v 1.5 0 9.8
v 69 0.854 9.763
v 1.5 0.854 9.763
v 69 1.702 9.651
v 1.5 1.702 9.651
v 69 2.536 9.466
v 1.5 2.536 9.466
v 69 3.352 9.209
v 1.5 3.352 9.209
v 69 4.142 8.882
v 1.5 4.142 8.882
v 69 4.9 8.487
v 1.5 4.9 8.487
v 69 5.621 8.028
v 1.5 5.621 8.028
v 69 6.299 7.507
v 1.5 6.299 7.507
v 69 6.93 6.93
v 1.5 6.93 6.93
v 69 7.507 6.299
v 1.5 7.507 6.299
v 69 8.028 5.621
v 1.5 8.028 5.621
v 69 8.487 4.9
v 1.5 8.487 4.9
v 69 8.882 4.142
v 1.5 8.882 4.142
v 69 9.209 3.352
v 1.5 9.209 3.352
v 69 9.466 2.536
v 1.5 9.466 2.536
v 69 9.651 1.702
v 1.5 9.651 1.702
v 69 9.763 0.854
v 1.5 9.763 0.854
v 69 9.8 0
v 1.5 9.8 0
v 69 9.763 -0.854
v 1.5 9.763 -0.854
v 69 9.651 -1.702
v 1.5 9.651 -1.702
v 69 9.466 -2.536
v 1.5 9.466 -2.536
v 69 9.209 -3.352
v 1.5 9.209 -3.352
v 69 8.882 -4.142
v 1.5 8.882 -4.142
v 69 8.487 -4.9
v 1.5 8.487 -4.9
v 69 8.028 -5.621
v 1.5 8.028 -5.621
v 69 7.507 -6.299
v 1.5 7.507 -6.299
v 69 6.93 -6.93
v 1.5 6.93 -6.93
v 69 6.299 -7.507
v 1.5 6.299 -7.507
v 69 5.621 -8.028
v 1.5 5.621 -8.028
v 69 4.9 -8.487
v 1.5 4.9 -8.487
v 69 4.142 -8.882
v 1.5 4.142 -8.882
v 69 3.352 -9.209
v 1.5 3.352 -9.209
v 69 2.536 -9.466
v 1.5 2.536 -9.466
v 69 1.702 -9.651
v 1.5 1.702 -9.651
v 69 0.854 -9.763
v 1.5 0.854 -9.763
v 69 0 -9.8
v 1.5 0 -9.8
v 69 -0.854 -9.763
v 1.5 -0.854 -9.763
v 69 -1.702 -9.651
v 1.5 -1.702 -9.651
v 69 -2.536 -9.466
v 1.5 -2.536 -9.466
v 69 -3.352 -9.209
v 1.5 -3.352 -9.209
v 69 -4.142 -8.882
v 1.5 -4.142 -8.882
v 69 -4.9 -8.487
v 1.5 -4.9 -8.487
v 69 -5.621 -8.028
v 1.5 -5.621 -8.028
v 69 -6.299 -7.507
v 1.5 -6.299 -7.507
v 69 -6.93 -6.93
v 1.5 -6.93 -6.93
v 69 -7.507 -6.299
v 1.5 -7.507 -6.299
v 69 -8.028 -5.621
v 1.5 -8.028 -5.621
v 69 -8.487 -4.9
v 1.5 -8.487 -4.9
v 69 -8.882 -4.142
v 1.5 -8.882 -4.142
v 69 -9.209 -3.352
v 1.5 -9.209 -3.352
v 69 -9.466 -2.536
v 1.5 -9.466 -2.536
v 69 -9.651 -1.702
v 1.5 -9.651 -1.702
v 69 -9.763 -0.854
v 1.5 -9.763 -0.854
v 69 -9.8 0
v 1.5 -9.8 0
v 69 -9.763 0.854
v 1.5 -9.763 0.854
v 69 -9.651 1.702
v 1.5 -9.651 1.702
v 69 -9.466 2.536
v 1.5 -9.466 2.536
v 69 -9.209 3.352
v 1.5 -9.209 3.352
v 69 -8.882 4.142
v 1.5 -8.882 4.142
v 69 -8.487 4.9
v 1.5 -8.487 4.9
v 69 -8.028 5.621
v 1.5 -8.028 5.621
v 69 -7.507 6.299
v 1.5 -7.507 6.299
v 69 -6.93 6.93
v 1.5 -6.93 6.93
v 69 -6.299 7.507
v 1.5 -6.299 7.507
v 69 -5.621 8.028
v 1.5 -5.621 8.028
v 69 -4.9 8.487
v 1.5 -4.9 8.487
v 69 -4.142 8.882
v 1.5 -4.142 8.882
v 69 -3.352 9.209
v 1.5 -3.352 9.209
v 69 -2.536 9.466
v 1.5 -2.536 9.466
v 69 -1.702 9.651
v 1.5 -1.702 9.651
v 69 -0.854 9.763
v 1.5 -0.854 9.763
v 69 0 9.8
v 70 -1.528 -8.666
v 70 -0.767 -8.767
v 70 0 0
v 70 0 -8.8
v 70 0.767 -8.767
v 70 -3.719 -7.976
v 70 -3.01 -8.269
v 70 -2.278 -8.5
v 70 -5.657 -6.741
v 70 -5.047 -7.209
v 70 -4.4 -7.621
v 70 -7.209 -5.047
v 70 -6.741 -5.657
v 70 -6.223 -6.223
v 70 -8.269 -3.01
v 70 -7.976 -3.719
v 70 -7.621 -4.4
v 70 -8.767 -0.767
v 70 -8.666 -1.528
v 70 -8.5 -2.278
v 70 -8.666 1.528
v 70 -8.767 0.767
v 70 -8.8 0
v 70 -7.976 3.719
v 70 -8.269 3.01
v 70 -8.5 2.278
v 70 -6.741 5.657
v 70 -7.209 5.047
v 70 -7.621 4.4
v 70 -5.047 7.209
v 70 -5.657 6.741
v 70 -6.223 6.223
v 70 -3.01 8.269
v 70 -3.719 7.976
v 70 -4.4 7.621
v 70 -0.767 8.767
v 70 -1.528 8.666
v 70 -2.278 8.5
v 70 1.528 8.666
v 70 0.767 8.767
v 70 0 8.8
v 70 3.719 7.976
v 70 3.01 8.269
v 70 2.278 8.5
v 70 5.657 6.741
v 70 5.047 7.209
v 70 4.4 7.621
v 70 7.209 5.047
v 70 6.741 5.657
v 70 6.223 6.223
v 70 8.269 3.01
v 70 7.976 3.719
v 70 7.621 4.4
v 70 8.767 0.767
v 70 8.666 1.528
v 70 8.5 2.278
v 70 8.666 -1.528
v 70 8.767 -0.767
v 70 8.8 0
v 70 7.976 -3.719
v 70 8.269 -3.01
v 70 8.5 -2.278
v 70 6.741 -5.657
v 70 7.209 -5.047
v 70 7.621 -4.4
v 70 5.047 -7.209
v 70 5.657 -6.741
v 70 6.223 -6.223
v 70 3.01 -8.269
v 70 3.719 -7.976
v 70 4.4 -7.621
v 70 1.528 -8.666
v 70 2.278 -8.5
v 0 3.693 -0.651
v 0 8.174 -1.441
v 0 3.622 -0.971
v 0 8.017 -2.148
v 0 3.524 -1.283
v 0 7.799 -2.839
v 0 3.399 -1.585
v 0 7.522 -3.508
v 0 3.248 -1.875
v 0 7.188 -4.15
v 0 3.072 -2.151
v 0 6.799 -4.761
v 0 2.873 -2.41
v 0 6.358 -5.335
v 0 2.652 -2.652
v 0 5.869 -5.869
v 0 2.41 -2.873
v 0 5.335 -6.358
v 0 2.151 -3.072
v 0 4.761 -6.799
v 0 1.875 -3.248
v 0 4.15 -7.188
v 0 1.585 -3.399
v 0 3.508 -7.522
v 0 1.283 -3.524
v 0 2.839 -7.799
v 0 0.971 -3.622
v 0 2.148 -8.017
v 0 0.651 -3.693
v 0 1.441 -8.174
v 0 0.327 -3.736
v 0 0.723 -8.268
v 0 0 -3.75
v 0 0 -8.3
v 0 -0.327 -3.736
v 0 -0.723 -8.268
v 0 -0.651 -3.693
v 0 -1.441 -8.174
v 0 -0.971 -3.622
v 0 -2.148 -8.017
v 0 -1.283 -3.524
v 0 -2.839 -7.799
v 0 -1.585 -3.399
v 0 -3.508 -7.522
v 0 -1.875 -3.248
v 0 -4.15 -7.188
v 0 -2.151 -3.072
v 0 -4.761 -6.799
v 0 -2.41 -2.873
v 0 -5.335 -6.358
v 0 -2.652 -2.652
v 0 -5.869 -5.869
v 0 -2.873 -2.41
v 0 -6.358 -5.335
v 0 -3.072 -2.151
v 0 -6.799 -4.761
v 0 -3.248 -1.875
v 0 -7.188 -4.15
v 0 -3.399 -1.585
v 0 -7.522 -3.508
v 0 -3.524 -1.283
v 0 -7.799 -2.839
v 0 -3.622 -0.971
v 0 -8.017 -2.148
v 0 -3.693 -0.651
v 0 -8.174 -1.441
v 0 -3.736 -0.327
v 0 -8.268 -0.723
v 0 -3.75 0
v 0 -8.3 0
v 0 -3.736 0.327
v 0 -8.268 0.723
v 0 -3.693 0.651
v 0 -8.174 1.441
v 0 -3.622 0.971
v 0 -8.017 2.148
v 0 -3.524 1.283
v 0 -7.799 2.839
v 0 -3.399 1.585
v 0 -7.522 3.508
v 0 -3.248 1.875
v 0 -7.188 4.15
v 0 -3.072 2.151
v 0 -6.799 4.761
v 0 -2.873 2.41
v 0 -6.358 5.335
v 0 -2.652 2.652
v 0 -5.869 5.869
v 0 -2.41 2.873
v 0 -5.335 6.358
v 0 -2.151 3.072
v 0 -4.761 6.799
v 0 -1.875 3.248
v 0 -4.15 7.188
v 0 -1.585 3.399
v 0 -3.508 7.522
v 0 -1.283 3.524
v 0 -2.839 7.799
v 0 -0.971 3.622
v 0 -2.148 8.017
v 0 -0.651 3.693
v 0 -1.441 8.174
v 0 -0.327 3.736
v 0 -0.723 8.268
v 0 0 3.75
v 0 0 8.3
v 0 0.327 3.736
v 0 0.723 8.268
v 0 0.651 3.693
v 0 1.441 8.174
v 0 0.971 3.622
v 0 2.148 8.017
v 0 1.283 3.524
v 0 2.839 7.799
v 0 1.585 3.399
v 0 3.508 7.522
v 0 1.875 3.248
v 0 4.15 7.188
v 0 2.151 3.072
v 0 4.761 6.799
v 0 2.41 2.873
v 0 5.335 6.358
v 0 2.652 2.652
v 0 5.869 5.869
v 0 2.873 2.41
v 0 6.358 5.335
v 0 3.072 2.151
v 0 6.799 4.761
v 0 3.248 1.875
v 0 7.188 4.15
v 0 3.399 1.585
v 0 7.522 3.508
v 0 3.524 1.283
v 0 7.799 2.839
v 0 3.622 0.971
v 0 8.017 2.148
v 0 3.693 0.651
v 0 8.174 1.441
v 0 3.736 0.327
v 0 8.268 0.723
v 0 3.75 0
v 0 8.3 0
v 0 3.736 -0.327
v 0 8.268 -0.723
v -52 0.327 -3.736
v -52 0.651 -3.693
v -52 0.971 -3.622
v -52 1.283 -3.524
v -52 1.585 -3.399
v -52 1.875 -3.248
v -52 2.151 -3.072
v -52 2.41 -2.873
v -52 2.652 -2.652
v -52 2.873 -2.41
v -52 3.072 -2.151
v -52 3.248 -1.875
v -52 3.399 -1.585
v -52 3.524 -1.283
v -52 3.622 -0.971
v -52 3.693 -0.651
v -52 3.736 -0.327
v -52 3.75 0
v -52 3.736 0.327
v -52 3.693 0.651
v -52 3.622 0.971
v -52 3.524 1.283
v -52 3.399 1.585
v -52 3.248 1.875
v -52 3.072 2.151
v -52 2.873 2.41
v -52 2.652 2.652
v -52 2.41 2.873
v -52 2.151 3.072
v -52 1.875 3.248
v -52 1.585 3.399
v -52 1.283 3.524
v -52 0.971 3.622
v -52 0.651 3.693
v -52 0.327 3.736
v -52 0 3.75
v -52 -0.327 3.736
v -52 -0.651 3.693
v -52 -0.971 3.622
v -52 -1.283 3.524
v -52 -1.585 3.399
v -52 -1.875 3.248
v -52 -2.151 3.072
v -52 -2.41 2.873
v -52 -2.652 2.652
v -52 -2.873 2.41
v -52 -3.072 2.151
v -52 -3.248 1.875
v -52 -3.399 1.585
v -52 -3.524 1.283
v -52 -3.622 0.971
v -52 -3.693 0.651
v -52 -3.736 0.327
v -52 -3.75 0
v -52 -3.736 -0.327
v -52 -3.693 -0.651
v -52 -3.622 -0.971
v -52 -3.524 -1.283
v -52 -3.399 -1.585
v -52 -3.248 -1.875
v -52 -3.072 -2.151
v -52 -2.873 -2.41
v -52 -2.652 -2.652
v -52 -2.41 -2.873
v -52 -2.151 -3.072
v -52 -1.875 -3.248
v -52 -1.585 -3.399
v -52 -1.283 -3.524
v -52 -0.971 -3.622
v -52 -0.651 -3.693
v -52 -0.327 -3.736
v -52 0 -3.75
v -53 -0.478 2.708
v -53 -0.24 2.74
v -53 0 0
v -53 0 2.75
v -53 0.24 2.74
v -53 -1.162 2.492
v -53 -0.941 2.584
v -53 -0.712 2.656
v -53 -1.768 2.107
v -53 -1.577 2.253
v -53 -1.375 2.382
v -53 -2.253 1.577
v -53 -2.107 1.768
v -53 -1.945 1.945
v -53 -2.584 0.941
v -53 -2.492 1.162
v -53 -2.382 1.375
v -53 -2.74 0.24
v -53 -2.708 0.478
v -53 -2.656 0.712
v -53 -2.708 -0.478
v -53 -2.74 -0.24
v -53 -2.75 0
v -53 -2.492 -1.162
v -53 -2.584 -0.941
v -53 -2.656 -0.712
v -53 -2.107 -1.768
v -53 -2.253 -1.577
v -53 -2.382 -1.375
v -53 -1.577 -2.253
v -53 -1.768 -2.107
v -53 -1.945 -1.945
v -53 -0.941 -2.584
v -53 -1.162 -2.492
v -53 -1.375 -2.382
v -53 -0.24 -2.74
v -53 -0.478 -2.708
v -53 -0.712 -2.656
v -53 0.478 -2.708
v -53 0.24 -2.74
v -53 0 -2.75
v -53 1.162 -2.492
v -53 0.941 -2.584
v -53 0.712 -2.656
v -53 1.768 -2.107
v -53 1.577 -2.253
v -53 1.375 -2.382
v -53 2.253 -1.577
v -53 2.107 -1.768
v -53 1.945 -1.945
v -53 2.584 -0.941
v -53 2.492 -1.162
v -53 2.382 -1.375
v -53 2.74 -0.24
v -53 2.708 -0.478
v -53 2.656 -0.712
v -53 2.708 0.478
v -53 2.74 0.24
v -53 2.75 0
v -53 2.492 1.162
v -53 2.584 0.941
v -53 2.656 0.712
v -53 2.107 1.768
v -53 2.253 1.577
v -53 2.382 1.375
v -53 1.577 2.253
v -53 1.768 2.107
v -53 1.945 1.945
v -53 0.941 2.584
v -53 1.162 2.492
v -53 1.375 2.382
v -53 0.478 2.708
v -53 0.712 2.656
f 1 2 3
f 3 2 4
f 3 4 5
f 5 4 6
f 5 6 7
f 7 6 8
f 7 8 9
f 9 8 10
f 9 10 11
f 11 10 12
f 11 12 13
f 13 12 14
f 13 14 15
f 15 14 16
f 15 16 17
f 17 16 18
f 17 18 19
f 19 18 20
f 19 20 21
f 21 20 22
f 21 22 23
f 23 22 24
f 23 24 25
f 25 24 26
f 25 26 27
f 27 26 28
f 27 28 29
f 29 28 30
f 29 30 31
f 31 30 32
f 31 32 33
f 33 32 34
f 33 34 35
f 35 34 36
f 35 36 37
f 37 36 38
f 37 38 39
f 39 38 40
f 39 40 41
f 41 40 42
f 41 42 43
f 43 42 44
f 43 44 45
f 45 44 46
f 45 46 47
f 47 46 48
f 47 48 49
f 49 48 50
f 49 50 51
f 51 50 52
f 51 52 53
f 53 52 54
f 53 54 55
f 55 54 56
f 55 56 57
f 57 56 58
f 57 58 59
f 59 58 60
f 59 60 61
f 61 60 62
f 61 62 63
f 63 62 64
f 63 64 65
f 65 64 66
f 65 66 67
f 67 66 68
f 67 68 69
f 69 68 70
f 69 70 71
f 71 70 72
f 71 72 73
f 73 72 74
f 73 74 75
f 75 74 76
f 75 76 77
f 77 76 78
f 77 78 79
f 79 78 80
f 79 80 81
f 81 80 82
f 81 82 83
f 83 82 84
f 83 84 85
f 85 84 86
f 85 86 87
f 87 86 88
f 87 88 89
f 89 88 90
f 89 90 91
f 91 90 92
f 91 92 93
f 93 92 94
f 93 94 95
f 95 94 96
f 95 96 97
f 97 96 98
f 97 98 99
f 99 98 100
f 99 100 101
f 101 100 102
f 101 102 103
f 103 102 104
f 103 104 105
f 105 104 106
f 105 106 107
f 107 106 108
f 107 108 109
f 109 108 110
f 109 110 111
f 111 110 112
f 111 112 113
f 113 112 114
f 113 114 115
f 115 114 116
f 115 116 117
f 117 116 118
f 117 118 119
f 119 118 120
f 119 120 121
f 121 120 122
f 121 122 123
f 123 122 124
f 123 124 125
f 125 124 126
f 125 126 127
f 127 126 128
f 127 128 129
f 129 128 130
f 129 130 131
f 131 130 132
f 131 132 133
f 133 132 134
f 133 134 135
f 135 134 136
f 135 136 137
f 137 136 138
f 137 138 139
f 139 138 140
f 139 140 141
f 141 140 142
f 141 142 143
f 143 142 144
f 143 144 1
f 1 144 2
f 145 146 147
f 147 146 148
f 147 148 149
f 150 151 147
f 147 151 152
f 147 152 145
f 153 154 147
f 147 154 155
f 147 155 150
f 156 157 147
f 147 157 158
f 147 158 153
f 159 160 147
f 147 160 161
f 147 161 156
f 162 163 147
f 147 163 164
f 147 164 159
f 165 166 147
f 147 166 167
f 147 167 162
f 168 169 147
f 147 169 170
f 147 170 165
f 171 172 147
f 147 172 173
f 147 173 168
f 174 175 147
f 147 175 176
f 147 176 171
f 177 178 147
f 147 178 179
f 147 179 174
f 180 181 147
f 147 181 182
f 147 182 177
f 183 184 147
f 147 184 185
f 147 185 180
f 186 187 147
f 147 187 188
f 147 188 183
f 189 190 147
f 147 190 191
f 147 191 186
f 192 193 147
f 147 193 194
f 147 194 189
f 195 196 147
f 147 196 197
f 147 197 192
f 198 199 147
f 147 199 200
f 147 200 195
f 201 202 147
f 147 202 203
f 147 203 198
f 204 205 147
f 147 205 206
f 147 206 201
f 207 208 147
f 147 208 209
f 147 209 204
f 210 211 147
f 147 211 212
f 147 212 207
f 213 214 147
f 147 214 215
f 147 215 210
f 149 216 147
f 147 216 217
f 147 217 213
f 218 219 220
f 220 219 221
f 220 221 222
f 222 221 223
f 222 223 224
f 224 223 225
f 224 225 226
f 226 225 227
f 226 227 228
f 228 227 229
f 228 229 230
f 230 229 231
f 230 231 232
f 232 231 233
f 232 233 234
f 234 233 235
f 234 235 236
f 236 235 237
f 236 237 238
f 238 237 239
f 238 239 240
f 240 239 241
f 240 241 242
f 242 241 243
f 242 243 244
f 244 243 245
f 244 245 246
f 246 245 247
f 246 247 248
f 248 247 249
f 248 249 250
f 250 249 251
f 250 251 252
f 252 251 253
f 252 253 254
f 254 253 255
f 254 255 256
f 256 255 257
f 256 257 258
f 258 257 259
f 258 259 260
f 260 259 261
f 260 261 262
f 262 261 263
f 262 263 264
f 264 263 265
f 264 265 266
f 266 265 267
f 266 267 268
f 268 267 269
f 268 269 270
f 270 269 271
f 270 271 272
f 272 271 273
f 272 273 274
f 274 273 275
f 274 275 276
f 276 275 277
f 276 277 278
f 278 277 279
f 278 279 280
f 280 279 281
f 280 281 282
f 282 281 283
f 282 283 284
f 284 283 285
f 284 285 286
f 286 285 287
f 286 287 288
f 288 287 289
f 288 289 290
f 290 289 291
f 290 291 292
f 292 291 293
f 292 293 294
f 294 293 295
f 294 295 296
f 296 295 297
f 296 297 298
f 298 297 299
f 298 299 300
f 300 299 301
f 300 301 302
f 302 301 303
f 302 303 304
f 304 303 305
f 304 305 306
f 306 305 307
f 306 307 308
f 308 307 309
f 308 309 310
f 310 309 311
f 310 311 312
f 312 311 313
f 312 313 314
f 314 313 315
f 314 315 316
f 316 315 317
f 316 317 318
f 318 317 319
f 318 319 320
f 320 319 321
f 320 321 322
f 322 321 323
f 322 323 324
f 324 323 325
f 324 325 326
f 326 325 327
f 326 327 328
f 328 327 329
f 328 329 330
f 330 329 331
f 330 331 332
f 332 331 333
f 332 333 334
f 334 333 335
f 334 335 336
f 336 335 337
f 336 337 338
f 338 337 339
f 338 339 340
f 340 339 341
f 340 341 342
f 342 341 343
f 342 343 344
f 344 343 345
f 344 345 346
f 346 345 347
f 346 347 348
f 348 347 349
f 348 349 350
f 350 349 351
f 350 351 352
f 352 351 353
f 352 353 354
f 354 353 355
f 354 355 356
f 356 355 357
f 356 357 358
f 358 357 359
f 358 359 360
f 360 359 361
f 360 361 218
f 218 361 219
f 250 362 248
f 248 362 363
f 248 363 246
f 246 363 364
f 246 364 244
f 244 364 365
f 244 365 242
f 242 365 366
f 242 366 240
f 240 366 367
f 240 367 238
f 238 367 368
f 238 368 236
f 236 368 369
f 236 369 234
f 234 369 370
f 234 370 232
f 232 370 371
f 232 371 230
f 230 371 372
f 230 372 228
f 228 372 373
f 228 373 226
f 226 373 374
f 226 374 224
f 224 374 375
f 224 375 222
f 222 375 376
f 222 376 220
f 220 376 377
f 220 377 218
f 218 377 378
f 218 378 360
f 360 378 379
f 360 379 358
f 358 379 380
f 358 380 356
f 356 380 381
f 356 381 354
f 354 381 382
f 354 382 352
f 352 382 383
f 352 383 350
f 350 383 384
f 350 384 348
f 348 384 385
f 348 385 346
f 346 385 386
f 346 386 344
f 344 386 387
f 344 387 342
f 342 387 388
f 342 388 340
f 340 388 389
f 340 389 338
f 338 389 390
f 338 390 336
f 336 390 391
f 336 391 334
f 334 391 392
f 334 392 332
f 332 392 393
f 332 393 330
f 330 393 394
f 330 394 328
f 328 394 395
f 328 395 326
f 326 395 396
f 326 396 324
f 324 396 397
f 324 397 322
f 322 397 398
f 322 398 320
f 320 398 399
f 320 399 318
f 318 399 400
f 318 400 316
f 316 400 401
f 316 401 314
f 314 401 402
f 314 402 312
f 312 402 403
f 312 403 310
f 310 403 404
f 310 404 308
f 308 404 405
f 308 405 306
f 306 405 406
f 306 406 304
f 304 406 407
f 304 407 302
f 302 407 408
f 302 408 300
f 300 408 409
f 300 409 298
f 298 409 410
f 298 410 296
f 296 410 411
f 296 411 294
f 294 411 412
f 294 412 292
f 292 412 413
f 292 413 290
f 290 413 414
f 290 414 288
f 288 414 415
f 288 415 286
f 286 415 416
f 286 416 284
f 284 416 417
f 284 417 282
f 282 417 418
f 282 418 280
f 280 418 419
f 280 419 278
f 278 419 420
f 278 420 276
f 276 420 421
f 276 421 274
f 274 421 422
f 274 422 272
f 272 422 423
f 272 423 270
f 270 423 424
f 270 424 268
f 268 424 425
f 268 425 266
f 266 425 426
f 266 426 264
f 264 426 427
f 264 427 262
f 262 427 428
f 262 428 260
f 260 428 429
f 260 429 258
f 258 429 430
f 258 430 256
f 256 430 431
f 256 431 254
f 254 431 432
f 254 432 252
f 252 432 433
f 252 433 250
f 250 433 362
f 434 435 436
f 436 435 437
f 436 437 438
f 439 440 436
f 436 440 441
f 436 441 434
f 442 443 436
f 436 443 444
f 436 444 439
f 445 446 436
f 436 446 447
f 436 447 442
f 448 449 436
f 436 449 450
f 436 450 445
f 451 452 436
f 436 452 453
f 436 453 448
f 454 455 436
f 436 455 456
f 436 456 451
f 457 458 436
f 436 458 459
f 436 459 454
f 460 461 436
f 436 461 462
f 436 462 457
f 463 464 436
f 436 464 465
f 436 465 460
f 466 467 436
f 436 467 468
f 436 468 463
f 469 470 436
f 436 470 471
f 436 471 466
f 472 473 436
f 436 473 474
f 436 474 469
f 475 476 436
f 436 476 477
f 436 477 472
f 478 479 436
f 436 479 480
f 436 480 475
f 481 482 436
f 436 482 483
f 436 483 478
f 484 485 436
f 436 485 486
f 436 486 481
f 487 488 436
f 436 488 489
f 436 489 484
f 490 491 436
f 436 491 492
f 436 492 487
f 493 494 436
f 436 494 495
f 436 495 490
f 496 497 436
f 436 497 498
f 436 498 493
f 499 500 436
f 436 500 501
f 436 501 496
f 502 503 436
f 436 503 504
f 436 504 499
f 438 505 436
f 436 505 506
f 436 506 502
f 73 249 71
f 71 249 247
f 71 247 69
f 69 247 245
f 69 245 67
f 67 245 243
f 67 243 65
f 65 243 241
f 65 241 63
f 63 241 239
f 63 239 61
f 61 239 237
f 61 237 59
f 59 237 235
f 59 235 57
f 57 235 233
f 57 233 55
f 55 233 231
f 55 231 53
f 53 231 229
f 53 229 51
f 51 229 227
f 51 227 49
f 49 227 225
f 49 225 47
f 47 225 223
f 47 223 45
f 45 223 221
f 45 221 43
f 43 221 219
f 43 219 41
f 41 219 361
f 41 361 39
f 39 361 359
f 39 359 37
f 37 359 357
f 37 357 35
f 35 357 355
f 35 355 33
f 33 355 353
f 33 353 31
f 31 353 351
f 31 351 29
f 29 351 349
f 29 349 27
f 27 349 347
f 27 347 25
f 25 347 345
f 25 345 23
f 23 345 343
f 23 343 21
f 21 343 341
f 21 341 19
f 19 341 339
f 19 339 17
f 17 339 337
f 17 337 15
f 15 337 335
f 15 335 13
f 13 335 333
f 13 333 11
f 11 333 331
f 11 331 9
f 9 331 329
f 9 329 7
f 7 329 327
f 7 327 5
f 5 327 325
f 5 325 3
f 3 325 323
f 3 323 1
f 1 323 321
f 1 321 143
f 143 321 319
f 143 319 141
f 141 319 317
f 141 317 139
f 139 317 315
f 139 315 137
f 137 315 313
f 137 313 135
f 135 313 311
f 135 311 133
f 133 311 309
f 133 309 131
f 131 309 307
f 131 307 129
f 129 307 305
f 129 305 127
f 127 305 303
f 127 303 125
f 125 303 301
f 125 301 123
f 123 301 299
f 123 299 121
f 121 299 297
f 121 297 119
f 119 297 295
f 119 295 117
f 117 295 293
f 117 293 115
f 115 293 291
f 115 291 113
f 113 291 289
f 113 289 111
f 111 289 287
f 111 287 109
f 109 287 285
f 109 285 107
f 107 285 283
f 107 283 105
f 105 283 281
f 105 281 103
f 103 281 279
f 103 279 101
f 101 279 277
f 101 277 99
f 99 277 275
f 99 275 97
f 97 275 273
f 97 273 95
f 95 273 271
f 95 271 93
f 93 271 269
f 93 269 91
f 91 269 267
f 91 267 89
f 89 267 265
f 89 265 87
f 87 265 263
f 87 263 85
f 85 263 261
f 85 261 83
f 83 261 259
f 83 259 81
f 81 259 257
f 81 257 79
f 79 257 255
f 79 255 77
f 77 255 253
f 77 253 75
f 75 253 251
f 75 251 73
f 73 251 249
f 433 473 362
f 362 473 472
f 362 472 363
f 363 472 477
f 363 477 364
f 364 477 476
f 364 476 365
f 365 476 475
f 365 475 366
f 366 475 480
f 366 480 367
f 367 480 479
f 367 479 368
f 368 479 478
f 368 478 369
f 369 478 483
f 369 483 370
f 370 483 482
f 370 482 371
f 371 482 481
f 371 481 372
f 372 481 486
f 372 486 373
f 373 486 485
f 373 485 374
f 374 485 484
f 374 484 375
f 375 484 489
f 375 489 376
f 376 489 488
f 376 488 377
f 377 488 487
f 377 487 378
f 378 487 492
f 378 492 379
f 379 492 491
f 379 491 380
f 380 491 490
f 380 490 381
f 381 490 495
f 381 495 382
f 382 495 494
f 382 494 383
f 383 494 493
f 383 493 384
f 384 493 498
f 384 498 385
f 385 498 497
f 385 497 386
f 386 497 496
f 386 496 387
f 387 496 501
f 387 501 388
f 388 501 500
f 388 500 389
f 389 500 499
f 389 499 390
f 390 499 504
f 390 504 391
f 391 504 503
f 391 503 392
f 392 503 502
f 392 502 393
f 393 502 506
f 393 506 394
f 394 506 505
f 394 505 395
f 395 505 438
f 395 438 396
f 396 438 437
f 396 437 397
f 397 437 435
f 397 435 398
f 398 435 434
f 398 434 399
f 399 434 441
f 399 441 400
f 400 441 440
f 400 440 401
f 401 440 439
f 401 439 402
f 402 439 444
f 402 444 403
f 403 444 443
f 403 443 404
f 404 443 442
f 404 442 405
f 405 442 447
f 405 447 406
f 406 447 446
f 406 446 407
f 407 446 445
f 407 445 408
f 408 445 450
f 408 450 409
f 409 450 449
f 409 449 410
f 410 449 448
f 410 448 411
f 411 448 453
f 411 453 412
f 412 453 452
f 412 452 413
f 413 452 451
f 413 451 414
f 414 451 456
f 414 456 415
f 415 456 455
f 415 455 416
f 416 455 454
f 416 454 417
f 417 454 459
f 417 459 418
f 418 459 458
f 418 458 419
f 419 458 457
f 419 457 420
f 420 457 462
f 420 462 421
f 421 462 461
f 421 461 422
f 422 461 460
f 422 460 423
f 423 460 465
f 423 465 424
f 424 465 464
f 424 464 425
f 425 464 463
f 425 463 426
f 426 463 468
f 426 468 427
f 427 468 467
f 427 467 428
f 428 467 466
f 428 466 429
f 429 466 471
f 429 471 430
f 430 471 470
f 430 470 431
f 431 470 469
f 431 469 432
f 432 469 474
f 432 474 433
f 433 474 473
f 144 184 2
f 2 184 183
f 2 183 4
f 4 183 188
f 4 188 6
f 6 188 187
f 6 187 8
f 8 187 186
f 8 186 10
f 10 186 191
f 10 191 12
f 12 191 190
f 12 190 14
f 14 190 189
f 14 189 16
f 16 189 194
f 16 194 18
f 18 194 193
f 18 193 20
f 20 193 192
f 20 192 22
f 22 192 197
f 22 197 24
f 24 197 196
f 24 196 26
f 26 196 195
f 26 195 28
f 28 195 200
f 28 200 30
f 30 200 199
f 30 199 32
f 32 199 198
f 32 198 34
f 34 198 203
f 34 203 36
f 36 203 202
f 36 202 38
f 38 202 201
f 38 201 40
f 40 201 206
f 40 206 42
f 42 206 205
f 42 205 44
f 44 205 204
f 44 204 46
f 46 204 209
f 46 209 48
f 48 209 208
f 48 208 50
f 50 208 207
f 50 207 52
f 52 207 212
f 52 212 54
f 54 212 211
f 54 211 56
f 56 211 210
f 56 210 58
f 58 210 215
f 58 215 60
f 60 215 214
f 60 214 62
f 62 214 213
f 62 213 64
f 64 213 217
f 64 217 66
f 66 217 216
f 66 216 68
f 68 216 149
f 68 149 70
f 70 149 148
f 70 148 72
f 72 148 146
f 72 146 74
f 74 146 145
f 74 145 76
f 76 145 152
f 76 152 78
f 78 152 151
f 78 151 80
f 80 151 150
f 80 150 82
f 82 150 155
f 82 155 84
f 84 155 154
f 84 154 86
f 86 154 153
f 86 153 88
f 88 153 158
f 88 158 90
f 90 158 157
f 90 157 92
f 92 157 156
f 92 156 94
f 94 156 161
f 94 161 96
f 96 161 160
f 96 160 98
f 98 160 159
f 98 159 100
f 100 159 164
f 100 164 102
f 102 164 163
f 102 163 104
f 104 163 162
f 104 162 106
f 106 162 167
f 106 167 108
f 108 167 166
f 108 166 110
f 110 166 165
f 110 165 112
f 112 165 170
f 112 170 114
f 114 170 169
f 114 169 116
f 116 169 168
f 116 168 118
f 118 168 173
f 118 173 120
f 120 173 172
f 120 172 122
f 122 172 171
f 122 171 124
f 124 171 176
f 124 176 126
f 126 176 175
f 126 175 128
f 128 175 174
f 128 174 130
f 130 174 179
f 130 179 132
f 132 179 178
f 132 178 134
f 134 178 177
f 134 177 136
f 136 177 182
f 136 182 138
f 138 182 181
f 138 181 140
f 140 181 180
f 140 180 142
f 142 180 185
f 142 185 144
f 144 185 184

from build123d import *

# Parameters (mm, degrees)
SKETCH_1_R      = 9.8
EXTRUDE_1_DEPTH = 70
SKETCH_2_R      = 3.75
EXTRUDE_2_DEPTH = 53
CHAMFER_1_SIZE  = 1.5
CHAMFER_2_SIZE  = 1
CHAMFER_3_SIZE  = 1


with BuildPart() as part:
    # 草图1 → 凸台-拉伸1 (new body)
    with BuildSketch(Plane(origin=(0, 0, 0), x_dir=(0, 0, -1), z_dir=(1, 0, 0))):
        Circle(SKETCH_1_R)
    extrude(amount=EXTRUDE_1_DEPTH)

    # 草图2 → 凸台-拉伸2 (add)
    with BuildSketch(Plane.ZY):
        Circle(SKETCH_2_R)
    extrude(amount=EXTRUDE_2_DEPTH)

    # 倒角1
    chamfer_1_edges = [part.edges().sort_by_distance(p)[0] for p in [
        (0, 0, 9.8),
    ]]
    chamfer(chamfer_1_edges, length=CHAMFER_1_SIZE)

    # 倒角2
    chamfer_2_edges = [part.edges().sort_by_distance(p)[0] for p in [
        (-53, 0, -3.75),
    ]]
    chamfer(chamfer_2_edges, length=CHAMFER_2_SIZE)

    # 倒角3
    chamfer_3_edges = [part.edges().sort_by_distance(p)[0] for p in [
        (70, 0, 9.8),
    ]]
    chamfer(chamfer_3_edges, length=CHAMFER_3_SIZE)


solid = part.part
